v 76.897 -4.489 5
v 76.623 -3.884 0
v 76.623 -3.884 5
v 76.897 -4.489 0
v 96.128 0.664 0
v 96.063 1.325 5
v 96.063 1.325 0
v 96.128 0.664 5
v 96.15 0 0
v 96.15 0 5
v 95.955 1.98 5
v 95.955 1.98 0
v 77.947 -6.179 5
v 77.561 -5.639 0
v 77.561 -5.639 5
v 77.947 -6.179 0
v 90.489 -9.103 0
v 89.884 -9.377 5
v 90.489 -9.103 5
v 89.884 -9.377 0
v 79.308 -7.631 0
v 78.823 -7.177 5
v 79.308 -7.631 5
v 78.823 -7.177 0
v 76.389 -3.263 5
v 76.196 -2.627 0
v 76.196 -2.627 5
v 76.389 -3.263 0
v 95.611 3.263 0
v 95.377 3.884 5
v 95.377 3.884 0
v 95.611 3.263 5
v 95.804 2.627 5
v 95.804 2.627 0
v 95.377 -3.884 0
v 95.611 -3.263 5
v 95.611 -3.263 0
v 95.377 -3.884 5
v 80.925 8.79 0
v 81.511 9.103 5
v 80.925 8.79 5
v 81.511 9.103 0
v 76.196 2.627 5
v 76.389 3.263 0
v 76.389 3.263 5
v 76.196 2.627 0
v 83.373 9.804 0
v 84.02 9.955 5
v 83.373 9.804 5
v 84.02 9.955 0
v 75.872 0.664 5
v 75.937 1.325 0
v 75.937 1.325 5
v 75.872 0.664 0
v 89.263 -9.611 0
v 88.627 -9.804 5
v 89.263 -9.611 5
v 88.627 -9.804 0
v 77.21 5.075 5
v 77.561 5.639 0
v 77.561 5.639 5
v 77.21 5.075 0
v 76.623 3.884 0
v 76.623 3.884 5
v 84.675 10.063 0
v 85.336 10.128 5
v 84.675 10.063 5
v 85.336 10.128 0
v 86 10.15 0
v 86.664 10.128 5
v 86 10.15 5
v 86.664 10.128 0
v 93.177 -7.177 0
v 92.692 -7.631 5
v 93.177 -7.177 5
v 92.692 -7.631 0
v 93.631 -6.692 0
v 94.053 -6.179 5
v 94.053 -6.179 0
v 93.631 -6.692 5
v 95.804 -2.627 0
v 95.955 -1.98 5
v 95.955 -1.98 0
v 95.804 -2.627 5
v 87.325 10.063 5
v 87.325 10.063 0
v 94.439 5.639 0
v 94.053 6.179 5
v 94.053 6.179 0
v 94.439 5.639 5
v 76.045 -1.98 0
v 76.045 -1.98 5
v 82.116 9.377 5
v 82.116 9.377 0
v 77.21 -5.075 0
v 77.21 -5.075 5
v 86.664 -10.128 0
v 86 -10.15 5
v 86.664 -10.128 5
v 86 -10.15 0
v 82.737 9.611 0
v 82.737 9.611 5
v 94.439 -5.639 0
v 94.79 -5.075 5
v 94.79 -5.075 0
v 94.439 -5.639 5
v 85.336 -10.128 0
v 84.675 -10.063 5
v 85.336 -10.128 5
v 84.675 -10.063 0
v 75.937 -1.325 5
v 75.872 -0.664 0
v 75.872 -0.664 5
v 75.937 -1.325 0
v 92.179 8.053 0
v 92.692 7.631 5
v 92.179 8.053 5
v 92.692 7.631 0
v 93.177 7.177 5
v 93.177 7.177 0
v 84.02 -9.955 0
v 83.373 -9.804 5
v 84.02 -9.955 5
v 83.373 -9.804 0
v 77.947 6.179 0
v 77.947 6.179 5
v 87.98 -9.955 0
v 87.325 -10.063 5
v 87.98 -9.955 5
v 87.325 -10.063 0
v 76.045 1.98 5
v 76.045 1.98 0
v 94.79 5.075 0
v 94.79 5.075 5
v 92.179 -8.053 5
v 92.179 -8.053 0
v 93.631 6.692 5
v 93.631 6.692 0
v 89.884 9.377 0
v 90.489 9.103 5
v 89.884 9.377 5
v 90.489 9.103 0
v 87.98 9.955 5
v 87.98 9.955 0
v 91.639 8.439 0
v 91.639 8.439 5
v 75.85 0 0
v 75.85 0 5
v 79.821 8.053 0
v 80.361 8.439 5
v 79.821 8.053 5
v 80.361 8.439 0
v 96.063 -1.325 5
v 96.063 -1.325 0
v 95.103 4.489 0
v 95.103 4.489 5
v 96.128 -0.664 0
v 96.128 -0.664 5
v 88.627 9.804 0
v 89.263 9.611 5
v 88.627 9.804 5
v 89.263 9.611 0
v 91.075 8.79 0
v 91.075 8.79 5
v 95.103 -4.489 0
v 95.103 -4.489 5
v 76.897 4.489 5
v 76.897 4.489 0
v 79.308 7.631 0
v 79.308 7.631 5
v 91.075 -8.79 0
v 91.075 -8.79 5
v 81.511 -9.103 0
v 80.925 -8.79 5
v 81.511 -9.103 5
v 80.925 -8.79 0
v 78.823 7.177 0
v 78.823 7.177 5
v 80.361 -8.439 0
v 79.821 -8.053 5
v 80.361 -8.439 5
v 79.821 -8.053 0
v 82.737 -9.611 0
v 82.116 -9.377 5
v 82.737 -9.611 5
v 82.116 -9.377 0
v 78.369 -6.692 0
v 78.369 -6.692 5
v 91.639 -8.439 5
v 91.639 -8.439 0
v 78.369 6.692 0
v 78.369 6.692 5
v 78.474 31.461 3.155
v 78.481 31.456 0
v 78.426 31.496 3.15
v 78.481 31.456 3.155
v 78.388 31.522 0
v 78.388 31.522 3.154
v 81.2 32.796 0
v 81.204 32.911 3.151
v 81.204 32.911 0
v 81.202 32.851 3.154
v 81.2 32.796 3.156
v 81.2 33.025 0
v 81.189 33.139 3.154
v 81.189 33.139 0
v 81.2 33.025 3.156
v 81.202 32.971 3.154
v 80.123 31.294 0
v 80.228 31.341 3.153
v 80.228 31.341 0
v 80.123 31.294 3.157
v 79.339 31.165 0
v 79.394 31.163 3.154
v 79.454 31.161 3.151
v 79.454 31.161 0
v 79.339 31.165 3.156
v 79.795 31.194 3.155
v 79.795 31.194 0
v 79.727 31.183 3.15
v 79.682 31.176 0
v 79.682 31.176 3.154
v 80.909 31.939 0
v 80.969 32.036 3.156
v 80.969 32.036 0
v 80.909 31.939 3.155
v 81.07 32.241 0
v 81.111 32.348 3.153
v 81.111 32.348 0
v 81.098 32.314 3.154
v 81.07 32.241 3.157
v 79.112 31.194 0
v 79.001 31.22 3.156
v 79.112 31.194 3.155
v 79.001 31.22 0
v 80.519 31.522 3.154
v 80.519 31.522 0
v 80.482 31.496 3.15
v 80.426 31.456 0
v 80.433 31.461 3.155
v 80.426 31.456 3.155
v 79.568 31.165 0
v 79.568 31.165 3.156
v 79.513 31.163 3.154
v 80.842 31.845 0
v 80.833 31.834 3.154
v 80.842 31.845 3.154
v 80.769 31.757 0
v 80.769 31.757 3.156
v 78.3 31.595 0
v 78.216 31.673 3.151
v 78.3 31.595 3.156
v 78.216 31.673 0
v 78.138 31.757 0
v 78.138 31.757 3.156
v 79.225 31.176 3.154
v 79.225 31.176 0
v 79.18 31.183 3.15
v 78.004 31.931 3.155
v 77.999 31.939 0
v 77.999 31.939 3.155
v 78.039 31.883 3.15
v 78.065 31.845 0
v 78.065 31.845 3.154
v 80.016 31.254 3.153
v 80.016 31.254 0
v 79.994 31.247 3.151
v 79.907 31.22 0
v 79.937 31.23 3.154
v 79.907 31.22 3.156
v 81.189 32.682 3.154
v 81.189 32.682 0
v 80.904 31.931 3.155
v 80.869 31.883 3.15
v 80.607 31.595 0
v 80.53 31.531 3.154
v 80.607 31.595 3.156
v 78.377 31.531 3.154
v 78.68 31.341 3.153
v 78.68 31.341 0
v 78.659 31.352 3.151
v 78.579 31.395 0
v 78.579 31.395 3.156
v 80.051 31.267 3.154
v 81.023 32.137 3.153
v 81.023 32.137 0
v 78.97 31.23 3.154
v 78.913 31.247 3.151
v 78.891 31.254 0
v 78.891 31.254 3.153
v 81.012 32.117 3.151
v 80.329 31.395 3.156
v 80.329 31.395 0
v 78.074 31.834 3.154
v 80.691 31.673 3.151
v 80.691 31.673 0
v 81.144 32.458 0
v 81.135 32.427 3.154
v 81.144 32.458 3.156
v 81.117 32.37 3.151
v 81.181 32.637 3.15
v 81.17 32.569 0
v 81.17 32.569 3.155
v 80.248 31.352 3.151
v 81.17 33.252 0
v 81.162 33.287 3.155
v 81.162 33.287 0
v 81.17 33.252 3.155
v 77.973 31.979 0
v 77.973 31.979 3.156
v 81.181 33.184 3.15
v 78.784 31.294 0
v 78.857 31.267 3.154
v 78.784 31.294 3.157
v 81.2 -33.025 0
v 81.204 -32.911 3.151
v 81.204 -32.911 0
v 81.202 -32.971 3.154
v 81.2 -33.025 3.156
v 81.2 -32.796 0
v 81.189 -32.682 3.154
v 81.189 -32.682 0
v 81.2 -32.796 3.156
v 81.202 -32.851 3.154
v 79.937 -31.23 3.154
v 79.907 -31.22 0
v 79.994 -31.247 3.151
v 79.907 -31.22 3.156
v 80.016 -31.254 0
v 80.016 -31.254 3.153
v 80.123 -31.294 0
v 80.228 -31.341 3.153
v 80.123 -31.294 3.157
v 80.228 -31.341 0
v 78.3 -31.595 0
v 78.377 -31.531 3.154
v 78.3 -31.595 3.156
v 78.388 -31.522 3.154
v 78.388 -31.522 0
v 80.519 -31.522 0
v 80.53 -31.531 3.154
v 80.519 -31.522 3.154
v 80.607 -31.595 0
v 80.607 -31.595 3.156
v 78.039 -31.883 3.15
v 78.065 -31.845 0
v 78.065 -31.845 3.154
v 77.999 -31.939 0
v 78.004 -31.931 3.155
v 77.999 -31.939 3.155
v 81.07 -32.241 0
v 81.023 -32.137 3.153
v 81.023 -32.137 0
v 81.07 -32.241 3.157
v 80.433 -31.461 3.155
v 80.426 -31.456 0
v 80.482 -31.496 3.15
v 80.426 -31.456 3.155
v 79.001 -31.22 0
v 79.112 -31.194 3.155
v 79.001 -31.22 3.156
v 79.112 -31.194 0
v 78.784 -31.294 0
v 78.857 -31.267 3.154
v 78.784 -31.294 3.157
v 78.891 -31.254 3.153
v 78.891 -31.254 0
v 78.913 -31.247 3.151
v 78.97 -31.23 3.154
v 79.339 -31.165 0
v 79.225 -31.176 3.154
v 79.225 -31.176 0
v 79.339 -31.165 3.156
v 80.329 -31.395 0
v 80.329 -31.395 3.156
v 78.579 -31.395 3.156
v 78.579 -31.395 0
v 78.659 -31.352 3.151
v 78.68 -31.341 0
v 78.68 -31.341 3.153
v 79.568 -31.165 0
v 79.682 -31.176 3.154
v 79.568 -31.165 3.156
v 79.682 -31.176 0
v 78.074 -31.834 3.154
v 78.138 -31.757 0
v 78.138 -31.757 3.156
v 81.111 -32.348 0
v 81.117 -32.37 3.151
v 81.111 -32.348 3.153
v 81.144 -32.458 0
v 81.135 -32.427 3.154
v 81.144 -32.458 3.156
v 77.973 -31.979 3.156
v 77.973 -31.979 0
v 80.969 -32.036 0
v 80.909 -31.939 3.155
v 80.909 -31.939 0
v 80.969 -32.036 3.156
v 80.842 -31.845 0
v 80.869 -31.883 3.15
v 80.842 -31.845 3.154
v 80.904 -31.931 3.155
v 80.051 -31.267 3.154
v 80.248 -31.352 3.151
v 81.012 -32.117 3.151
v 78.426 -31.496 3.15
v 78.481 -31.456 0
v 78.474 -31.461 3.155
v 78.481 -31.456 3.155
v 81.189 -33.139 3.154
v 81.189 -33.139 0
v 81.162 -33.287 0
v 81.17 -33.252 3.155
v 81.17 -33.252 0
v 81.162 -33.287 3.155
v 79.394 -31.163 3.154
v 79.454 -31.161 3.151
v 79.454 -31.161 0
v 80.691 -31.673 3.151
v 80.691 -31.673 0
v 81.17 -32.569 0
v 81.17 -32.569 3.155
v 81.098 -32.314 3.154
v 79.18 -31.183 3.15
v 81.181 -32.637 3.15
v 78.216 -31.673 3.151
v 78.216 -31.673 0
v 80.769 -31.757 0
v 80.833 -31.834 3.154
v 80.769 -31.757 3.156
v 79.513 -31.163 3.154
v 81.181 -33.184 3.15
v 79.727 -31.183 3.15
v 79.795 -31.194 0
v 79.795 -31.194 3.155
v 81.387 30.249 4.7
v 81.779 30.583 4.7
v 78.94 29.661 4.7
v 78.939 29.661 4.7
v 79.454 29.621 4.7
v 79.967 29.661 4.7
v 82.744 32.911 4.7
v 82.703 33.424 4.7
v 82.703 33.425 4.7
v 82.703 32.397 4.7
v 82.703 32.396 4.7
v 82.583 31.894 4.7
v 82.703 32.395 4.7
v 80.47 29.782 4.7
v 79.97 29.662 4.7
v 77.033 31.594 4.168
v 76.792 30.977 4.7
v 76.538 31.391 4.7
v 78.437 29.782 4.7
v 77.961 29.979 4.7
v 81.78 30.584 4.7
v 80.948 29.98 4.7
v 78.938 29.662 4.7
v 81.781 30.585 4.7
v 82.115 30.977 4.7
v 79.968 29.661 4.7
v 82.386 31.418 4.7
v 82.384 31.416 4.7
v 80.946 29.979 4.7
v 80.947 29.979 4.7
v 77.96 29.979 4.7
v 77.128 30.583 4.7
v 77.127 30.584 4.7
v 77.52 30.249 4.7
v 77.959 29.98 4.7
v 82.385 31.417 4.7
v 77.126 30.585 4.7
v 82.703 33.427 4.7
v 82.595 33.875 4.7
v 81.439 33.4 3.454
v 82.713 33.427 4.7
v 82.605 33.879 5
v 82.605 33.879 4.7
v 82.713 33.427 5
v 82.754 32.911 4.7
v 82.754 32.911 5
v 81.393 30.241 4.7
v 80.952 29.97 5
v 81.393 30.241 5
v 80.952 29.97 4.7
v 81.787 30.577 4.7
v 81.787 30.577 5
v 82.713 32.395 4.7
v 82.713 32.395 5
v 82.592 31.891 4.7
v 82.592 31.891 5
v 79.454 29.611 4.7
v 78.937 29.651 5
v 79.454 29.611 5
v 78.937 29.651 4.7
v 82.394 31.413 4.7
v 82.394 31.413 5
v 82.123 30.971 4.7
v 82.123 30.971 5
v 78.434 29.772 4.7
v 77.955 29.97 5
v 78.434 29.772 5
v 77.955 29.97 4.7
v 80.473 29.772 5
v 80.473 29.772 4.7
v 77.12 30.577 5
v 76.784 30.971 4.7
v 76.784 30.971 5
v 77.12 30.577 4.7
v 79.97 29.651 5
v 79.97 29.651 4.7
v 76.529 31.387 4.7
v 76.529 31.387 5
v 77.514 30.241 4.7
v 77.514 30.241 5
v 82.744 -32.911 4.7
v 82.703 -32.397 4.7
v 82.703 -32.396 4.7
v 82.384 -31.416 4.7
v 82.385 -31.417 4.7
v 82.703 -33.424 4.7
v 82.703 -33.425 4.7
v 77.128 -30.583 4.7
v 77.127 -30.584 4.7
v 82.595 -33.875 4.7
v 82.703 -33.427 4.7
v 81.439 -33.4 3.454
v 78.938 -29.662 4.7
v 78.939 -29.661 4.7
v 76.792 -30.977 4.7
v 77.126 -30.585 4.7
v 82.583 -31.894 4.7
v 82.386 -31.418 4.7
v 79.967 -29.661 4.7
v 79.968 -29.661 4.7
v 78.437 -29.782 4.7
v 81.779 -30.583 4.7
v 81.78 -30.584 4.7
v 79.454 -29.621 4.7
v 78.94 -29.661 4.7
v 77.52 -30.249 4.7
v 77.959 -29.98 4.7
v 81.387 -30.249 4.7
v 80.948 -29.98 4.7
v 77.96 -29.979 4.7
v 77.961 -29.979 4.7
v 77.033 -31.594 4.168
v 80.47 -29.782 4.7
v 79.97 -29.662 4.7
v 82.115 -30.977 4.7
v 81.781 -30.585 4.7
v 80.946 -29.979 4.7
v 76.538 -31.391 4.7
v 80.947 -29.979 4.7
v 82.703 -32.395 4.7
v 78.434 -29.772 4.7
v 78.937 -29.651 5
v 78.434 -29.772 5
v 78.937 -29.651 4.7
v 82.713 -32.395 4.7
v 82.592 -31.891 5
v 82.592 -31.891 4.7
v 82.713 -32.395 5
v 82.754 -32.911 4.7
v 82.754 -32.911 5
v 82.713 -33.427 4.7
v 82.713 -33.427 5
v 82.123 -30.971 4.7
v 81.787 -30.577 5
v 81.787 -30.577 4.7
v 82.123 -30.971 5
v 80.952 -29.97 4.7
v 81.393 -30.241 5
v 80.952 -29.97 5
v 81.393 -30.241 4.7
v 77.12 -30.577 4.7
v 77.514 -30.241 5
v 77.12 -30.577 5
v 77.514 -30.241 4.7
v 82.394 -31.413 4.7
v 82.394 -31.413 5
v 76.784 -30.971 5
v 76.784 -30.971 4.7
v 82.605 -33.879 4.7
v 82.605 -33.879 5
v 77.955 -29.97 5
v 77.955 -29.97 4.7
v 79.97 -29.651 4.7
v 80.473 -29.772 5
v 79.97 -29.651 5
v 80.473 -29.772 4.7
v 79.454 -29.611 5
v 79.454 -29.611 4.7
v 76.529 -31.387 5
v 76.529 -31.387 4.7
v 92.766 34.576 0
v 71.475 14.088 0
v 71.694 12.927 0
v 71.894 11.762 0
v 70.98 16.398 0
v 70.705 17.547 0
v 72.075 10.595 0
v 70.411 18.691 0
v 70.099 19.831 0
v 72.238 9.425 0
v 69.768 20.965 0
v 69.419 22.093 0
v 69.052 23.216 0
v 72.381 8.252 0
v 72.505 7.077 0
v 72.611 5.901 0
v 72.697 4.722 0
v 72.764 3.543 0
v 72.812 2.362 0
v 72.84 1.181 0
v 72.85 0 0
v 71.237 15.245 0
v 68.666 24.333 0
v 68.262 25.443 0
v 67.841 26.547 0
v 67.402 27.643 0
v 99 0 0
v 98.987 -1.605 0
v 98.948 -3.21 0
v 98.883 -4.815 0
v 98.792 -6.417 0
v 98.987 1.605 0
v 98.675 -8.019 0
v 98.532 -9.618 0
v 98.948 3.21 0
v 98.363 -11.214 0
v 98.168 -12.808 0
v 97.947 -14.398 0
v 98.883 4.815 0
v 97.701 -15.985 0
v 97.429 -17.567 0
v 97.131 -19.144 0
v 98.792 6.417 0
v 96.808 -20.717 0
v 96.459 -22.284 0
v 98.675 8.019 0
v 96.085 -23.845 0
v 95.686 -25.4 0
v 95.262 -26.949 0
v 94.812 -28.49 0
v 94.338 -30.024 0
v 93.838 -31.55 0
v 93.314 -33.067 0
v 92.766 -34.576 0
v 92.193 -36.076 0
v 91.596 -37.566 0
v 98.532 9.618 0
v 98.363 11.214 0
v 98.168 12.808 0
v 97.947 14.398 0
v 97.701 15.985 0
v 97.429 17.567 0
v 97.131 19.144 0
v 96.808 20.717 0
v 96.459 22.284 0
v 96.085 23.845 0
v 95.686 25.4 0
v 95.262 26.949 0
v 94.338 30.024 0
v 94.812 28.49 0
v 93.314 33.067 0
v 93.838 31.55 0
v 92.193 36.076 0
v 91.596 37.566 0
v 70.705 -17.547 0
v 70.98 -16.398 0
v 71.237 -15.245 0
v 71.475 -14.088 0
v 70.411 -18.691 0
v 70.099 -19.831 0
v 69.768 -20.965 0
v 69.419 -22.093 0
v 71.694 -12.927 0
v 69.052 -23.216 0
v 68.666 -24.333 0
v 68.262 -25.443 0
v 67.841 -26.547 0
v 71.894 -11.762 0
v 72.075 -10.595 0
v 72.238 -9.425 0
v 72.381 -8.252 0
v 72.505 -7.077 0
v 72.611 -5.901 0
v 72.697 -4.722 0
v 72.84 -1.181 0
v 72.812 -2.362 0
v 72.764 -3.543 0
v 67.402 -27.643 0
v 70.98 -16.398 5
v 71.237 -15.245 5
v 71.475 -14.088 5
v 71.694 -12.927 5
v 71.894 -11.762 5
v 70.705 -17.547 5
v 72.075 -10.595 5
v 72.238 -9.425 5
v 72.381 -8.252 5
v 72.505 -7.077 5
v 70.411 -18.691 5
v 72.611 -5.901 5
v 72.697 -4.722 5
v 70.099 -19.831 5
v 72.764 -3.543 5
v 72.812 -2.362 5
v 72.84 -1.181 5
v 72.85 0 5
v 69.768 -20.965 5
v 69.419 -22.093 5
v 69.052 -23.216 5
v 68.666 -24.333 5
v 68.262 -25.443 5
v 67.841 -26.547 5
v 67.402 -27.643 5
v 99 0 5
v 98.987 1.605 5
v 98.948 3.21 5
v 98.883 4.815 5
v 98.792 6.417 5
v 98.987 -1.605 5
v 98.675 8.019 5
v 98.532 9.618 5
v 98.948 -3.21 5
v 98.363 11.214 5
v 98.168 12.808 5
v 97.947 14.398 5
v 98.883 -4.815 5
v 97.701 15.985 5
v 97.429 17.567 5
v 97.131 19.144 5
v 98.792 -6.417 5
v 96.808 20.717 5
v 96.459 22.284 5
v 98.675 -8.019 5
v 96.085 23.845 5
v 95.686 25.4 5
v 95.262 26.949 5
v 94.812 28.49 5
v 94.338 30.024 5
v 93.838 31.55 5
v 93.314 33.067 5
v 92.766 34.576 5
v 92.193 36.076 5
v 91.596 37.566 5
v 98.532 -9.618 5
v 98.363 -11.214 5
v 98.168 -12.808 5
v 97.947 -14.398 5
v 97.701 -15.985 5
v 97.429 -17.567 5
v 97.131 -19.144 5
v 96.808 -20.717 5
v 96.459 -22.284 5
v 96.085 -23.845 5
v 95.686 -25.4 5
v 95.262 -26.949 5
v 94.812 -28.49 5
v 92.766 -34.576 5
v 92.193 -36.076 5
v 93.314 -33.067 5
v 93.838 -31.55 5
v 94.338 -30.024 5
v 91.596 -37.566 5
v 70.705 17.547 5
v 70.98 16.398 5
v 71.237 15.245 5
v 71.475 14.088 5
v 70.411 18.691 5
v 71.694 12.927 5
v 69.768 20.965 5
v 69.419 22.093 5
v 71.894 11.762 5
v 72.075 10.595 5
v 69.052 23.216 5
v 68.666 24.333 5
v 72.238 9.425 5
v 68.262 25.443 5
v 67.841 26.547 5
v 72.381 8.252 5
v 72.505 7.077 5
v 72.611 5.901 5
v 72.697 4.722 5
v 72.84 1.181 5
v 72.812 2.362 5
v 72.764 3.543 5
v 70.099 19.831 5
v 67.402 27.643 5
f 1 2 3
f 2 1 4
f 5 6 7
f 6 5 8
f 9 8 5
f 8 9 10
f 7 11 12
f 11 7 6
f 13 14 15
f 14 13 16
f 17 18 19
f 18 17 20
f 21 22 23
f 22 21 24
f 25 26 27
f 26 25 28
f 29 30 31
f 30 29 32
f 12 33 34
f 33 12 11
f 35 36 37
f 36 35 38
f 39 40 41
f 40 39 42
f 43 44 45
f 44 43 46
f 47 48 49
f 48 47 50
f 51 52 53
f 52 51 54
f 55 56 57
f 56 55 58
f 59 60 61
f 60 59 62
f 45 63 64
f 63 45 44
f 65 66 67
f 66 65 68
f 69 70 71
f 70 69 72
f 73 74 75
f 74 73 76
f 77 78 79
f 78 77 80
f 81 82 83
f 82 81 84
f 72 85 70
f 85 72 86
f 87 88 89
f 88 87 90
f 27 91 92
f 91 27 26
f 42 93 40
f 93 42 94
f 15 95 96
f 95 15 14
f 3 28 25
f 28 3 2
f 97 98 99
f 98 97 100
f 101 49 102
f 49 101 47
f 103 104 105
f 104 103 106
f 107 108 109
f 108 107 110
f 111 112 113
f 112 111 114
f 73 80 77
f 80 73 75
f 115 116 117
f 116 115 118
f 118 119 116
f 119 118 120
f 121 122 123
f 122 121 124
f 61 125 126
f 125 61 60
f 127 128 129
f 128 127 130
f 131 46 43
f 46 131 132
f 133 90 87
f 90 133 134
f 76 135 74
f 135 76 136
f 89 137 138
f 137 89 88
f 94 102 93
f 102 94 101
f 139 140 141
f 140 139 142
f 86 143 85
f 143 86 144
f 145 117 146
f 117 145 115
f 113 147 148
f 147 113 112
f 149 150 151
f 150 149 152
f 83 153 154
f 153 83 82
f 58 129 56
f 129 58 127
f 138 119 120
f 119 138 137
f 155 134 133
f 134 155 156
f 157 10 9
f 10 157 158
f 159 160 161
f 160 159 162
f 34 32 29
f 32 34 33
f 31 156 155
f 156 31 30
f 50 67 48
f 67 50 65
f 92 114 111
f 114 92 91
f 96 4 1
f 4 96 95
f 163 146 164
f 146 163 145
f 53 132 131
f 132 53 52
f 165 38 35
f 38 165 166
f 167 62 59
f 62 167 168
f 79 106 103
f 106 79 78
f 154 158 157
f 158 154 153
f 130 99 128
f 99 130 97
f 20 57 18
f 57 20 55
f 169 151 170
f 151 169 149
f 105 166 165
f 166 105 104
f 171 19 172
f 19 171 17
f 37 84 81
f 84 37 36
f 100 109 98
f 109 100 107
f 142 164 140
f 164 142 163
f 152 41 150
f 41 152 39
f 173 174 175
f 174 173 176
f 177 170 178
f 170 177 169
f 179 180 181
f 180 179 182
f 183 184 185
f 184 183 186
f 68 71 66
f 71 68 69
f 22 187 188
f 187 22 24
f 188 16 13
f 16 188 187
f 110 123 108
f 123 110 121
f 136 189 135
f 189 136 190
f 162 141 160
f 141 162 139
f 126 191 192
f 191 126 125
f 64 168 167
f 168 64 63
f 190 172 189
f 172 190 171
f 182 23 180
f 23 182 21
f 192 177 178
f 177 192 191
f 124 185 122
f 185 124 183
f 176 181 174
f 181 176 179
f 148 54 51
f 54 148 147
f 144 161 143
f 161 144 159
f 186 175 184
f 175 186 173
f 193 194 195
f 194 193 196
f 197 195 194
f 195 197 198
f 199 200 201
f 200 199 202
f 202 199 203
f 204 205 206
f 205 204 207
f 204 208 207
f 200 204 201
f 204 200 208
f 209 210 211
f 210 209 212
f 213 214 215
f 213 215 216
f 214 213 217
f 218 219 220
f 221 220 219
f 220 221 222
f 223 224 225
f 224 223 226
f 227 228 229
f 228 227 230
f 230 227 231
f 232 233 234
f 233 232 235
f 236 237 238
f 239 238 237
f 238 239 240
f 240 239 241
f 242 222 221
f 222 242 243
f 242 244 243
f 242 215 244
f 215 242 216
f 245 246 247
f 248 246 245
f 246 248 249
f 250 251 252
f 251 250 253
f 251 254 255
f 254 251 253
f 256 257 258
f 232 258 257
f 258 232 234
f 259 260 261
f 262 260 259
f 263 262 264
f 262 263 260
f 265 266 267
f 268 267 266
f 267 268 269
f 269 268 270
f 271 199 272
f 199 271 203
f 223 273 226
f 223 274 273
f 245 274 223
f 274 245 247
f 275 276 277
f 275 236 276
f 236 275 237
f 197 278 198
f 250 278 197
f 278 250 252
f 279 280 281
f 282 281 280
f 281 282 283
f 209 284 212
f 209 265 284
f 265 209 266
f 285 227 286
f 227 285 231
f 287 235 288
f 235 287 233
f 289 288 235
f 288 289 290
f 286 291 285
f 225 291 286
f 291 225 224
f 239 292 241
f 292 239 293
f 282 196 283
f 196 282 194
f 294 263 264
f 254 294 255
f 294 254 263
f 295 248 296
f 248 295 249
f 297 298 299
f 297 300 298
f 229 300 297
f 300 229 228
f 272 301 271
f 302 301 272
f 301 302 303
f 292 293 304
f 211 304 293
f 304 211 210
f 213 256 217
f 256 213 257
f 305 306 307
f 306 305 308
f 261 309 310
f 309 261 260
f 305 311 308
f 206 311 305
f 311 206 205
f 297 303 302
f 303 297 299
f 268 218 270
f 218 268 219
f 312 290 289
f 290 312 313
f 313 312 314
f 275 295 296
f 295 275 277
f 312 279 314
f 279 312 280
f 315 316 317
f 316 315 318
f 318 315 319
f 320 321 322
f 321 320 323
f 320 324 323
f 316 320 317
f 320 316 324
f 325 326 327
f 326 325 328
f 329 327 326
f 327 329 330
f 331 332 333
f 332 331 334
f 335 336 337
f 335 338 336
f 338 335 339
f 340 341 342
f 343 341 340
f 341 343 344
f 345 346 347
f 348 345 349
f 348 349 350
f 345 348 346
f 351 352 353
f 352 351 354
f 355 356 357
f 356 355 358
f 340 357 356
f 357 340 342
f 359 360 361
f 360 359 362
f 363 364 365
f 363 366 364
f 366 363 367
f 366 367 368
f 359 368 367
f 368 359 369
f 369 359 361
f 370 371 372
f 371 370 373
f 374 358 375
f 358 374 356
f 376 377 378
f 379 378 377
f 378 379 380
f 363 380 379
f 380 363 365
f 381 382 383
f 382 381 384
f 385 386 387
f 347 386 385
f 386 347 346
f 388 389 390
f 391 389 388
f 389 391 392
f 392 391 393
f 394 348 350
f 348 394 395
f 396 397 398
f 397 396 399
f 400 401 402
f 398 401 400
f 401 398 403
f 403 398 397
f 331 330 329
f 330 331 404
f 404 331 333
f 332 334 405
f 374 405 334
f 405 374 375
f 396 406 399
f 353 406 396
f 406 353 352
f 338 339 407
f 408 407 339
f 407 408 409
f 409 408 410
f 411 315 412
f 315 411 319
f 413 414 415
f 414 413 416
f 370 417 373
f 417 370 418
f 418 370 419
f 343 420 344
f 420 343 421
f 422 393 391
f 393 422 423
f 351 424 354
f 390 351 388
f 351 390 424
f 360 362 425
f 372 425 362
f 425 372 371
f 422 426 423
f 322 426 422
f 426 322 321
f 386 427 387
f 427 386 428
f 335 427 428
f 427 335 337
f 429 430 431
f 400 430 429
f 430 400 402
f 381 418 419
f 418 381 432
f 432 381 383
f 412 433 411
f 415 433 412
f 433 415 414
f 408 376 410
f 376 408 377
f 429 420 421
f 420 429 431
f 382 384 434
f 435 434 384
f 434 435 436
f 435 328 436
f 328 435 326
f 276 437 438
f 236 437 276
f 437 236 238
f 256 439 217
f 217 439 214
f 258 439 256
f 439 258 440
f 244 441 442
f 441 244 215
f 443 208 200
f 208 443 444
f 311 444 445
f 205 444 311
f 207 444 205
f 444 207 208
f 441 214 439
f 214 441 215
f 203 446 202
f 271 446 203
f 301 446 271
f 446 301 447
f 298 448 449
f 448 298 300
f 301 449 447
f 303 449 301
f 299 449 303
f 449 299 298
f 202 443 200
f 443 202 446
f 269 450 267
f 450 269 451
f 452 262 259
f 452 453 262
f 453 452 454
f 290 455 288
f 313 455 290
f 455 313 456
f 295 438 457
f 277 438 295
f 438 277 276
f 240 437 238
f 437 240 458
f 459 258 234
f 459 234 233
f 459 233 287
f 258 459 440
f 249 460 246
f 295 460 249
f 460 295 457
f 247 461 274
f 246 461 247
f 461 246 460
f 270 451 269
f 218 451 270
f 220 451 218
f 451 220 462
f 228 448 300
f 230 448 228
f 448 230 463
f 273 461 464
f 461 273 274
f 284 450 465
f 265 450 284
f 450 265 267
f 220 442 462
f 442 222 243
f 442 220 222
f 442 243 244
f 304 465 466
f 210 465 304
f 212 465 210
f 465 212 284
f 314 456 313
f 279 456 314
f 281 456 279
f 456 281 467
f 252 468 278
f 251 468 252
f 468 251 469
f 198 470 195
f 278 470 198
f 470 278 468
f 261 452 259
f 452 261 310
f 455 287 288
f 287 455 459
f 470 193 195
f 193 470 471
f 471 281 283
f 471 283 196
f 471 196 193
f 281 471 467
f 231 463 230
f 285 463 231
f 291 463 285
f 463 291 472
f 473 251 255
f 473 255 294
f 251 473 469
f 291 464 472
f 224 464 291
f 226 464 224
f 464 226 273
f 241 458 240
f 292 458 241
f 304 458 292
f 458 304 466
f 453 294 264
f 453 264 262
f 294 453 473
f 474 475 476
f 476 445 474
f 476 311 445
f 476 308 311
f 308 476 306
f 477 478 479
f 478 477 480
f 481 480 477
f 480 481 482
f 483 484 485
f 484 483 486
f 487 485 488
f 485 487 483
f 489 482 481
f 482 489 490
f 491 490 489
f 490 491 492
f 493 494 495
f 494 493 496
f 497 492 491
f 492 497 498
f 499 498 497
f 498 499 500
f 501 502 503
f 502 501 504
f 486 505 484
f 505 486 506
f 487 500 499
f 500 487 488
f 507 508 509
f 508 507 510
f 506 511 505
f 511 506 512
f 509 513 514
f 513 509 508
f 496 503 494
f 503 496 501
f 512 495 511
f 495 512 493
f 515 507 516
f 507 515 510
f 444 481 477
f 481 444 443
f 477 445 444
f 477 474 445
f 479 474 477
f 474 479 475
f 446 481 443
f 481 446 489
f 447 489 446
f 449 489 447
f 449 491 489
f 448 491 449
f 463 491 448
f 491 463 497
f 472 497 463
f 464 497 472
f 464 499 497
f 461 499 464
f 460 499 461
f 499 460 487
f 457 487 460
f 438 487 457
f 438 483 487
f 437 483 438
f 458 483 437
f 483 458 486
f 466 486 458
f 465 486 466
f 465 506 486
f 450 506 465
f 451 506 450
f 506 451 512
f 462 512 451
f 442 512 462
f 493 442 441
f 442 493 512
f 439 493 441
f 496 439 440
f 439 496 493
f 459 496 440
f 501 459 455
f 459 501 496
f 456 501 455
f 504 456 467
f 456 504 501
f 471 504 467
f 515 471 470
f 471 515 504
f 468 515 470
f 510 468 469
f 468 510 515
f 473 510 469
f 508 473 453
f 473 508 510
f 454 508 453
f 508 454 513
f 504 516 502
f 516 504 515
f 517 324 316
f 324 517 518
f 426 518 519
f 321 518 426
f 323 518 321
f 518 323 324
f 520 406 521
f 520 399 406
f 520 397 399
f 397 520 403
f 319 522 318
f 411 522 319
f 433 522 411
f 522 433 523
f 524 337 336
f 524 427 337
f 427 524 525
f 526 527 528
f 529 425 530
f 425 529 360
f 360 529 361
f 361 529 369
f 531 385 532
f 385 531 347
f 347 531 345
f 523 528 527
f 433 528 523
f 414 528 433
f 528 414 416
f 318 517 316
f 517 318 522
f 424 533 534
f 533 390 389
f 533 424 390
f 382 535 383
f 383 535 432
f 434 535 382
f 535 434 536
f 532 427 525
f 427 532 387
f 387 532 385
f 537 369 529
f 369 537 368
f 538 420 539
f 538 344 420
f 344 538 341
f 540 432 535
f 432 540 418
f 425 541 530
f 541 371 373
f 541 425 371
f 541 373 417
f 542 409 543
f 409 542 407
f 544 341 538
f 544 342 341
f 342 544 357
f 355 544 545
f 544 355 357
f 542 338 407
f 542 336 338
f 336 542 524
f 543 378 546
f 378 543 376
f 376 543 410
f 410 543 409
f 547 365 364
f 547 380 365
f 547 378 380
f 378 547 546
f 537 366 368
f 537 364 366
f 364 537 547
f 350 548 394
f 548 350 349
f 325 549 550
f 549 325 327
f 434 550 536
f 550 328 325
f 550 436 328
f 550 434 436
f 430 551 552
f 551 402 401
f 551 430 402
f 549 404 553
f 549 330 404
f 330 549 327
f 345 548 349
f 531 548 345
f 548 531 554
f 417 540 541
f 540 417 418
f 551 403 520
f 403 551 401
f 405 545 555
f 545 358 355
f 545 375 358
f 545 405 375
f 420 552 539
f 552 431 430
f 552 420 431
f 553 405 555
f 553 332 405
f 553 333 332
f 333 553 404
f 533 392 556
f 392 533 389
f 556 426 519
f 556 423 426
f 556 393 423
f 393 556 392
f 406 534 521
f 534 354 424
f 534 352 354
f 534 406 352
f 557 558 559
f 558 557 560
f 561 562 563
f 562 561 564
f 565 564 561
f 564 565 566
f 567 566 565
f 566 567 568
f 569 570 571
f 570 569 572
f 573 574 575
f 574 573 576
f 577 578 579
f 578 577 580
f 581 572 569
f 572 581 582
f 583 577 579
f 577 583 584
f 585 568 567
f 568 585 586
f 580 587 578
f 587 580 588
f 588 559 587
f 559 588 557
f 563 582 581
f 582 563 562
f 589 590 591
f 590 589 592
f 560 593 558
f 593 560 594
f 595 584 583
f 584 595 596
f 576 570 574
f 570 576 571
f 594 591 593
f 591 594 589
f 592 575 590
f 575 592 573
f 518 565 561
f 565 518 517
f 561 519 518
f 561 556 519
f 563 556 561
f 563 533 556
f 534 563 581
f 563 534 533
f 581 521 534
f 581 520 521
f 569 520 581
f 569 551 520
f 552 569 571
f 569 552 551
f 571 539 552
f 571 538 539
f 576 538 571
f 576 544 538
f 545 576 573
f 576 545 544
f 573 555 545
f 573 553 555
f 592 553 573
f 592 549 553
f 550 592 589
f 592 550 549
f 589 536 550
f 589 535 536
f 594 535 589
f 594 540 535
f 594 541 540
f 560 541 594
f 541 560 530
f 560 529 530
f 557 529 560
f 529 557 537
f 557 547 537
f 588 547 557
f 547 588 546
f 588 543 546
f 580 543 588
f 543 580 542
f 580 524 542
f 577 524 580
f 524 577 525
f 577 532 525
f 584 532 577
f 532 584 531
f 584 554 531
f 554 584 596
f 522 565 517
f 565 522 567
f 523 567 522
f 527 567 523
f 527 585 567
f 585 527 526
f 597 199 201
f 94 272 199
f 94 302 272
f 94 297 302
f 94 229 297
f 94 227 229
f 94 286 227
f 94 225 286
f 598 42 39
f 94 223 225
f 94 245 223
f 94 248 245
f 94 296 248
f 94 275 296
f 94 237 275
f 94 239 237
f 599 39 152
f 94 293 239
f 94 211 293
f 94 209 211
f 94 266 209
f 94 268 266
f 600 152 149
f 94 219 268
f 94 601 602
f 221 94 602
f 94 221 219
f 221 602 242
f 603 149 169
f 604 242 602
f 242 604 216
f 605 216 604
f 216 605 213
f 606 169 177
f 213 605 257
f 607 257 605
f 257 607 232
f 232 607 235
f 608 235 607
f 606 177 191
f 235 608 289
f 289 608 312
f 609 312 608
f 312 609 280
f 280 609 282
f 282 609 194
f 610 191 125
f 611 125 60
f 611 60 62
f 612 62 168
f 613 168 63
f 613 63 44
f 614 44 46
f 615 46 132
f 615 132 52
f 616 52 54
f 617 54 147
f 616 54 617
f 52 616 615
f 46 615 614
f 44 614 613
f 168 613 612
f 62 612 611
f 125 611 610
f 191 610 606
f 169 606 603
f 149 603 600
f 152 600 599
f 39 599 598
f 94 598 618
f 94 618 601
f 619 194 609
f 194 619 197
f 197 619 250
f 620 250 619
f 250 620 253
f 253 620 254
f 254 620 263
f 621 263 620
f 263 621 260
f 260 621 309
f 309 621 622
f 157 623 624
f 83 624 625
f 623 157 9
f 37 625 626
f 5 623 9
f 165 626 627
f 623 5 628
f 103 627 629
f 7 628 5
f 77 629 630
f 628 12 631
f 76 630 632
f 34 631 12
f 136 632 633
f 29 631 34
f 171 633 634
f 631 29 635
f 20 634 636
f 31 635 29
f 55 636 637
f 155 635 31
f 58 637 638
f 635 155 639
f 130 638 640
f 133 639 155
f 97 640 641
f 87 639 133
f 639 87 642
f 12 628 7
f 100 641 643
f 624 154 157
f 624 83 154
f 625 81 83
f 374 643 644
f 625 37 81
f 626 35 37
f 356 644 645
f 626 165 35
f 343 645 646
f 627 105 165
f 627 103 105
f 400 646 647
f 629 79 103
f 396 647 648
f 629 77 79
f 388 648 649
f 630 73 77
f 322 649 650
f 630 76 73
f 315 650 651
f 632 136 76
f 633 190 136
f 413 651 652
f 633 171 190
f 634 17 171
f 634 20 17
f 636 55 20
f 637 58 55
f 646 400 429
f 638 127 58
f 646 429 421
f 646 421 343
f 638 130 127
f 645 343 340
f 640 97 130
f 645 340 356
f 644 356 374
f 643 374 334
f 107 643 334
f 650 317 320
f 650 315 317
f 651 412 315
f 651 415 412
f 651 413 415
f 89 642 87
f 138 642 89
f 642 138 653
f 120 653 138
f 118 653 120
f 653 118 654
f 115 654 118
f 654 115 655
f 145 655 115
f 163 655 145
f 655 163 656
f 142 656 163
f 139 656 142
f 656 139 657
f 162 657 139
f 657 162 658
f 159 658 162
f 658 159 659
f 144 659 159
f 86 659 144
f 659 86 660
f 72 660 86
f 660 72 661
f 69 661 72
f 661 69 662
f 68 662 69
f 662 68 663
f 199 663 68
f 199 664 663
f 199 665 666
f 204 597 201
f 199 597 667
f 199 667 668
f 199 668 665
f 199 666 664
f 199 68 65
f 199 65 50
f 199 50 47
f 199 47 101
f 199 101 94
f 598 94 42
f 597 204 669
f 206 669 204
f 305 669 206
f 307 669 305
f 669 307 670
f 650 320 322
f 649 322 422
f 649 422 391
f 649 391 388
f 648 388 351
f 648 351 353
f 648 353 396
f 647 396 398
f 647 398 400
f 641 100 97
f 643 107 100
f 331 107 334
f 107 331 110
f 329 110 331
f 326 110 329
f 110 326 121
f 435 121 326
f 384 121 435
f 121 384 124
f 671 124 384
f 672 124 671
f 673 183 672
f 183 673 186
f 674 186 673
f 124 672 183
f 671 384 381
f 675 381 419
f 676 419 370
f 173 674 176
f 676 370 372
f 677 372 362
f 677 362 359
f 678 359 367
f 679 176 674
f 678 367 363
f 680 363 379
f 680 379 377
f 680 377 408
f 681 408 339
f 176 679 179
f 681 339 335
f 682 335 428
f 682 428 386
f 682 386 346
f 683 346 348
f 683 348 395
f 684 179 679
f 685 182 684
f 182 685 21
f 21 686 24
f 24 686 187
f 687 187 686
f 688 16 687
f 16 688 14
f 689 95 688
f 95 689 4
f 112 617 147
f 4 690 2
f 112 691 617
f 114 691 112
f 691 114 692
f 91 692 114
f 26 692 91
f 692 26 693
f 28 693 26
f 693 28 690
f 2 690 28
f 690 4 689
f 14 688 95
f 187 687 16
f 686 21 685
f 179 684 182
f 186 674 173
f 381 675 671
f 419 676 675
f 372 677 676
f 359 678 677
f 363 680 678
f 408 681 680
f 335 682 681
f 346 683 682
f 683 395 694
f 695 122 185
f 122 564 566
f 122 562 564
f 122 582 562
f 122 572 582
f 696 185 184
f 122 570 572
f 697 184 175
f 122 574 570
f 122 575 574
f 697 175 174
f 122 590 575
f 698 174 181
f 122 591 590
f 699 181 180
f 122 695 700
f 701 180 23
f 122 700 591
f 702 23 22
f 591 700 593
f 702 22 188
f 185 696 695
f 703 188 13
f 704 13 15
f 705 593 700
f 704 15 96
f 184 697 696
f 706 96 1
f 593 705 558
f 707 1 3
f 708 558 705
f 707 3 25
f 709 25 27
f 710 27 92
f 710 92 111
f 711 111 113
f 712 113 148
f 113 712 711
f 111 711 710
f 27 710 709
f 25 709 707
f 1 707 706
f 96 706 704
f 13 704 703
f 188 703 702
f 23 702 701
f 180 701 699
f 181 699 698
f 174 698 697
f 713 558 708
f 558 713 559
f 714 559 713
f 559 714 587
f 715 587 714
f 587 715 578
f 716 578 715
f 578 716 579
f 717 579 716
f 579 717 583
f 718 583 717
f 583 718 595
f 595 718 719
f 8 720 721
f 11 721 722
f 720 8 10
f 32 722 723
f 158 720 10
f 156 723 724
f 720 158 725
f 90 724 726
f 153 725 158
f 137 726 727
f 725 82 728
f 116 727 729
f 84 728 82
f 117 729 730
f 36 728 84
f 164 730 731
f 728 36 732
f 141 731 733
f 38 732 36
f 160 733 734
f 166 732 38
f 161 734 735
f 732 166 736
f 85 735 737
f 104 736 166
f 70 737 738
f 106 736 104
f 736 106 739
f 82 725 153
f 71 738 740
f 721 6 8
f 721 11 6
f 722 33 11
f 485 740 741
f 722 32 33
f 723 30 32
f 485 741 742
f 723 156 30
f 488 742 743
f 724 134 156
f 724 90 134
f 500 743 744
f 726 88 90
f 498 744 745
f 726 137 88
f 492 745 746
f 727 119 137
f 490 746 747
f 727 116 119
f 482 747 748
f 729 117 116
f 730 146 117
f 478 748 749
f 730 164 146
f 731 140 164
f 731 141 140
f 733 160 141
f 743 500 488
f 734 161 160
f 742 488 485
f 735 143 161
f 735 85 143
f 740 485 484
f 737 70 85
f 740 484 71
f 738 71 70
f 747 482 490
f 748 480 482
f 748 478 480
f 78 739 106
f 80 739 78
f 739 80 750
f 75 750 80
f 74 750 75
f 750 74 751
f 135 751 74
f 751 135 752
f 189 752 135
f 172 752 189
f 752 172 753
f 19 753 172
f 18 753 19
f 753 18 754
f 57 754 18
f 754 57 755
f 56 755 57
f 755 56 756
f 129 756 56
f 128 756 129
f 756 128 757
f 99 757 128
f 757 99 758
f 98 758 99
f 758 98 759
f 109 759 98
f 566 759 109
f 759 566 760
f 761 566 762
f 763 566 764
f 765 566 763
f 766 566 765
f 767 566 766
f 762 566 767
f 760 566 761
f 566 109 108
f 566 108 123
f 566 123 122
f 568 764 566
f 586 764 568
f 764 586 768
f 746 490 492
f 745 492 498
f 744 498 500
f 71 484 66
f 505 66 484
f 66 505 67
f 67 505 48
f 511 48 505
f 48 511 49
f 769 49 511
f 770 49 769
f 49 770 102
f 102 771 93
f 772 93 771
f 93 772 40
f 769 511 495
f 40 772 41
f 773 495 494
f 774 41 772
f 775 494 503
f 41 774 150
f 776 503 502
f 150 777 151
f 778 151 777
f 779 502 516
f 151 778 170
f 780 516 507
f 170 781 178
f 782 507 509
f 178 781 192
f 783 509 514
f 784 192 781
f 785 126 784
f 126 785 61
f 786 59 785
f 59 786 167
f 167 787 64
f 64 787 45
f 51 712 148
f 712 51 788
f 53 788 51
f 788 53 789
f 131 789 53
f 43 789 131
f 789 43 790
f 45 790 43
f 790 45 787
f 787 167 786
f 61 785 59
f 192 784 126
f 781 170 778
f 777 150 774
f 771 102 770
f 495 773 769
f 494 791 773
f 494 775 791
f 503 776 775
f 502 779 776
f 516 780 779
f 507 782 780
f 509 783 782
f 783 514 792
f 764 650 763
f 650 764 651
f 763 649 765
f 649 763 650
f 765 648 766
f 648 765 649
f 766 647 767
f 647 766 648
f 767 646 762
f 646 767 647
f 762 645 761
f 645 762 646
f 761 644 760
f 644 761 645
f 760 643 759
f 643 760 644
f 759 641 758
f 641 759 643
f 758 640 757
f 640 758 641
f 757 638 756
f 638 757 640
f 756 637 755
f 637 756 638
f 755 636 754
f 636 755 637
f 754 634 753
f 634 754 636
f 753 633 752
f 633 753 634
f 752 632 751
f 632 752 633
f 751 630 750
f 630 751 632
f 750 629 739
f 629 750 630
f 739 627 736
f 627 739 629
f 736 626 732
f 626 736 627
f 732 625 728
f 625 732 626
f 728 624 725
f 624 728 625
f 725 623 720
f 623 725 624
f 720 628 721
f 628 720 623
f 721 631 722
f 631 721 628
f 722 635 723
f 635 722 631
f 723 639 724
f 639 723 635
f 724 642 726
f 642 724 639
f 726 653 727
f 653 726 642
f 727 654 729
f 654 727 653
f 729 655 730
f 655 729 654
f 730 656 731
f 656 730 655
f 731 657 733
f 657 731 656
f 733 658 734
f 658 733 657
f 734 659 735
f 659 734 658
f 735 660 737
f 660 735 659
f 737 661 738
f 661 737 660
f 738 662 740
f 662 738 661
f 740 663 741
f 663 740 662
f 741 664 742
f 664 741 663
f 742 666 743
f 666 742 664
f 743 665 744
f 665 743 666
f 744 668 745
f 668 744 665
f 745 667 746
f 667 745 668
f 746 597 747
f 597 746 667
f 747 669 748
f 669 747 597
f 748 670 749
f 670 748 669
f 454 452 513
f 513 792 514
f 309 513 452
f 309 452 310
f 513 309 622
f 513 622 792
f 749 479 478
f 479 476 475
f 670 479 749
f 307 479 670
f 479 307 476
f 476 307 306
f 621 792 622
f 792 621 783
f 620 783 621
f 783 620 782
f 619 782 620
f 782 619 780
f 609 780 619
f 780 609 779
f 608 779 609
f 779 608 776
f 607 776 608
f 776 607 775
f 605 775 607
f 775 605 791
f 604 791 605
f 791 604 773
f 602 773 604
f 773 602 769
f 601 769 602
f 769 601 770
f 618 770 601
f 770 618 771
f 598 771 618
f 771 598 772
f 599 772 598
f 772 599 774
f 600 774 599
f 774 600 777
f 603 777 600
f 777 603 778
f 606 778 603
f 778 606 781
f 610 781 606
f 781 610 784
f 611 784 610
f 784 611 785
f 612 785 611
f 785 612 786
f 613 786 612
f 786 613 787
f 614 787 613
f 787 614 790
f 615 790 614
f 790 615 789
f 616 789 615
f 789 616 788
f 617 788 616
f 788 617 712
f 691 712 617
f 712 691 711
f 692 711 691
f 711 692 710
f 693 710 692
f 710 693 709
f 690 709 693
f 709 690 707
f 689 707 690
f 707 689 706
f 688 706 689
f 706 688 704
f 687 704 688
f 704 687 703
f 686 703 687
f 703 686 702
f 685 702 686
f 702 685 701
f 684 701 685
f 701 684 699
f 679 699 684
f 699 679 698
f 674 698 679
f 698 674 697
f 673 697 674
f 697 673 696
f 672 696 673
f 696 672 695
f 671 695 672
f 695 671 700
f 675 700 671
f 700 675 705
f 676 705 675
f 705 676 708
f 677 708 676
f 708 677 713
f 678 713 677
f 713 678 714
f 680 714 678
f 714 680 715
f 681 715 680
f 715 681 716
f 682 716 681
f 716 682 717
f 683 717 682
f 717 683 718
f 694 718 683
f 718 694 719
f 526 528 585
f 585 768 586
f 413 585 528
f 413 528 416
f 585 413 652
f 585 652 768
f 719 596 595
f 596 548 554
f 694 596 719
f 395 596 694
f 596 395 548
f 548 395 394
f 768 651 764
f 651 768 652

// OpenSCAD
// file: parameters.scad
// =============================================================================
// Gen-CD — nightly 2026-10-14 (physics_scorer, honest magpylib watts)
// Push past Gen-CA on the same arc-nested one-plate architecture: poles out to R86, bobbins r65–105 × 4.95 mm copper. Full-resolution scorer picks this window at ≈8.56 W (386 m, at the wire budget) with a Ø229 stator that still packs; thinner-copper R86 tips (r65–107 × 4.65) need Ø232+ and would not pack. Same 8 bolt-on arcs/rotor + D-flat hub + open-centre stator + in-place bobbin bases that unlocked Gen-CA.
// Clocking 0 deg (magnets N facing S) + D-flat keyed bore + index notch + flip-symmetric hole map.
// Windable 2-piece bobbin; turns = physics_scorer turns_fit; copper only between flanges.
// Steel back-iron: 2× Ø198 × 4.76 mm (3/16") mild-steel discs (steel_backiron_disc.dxf); magnets sit ON the steel
// (through-pockets) -> score with --back-iron. Night 2026-10-14.
// =============================================================================
topology            = "dual_rotor";

// --- Wire / winding (physics_scorer winding-fit) -------------------------------
wire_awg            = 26;
wire_od             = 0.45;     // insulated OD mm (bare 0.405)
fill_realistic      = 0.65;     // insulated-wire area / window (DENSE layered wind with a jig; scorer cap 0.65)
turns               = 370;       // = physics_scorer turns_fit (do NOT raise)
coil_former_type    = "bobbin";
coil_core_inset     = 18.31;     // radial copper build: hub = copper boundary inset by this
wind_build_axial    = 0.0;      // nothing proud of the flanges
wind_build_radial   = 0.0;

// --- Bobbin (base + lid) ---------------------------------------------------------
coil_id_r           = 65.00;    // copper boundary sector
coil_od_r           = 105.00;
span_deg            = 26.91;    // = pitch - 2*asin((wall+0.85)/coil_id_r) -> >=1.2 mm stator web
former_web          = 4.95;     // copper height between flanges (TALL copper: steel keeps Bz up)
flange_t            = 0.80;     // >= 0.8 mm FDM wall rule (tall winds push on the flanges)
wall                = 0.80;     // flange lip beyond copper
former_bare_h       = former_web + 2 * flange_t;
coil_envelope_h     = former_bare_h + 2 * wind_build_axial;
tab_w               = 7.0;
tab_len             = 7.0;
tab_h               = former_bare_h / 2;
pin_d               = 1.9;      // 1.75 mm filament locating pin
coil_mount_r        = coil_od_r + 0.2 + 4.0;
lead_y              = 1.6;
lead_slot_w         = 0.9;
lead_groove_d       = 0.6;

// --- Gap -------------------------------------------------------------------------
run_clear           = 0.50;     // rotor face -> flange
gap_spacer_h        = run_clear + wind_build_axial;
m2m                 = coil_envelope_h + 2 * run_clear;   // rotor face to rotor face (= gap_sleeve length)

// --- Stator ----------------------------------------------------------------------
coil_stations       = 12;
bay_clear           = 0.35;     // 0.35 mm: bobbin BASES print IN PLACE inside the stator bays (print-in-place gap), then pop out
stator_thick        = former_bare_h;                        // bobbins flush both faces
stator_od           = 229.0;
shaft_clear_stator  = 14.0;     // stator is static; gap sleeve OD 12 spins inside
stator_ir           = 59.85;    // ANNULAR stator: open centre (nested one-plate pack); inner rim 4.0 mm

// --- Rotor(s) --------------------------------------------------------------------
magnet_Br           = 1.43;     // N52
magnet_d_large      = 20.0;
magnet_h_large      = 5.0;      // one O20x5 per pocket
magnet_h_small      = 5.0;      // unused: no O5 pockets in this kit
halbach_magnetisation = "none";  // NO O5 assist magnets in this kit (scan: they lower the 4-pole score)
rotor_b_same_axis   = true;     // same-index magnets share one axis: N faces S across the gap
large_pocket_d      = 20.3;
small_pocket_d      = 5.3;
pocket_h            = 5.00;     // THROUGH the carrier: magnet back face sits on the steel disc (FLUSH seat: carrier = magnet height, magnet face level with the rotor face)
large_n             = 8;
R_large             = 86.0;
small_r_list        = [];       // no O5 pockets
carrier_od          = 198.0;
ring_ir             = 72.85;    // RING rotor: PLA magnet ring r ring_ir..carrier_od/2 (steel disc = structural rotor)
hub_flange_od       = 74.0;     // separate rotor_hub flange (inside the ring, flush with the ring face)
csk_d               = 6.6;      // M3 countersunk head pocket (ISO 10642 head 6.0 nominal) on the stator face
csk_depth           = 1.55;     // = (csk_d - m3_clear) / 2: 90 deg cone; head sits 0.3 mm below the face
n_seg               = 8;        // magnet-carrier ARCS per rotor (segmented carrier)
seg_deg             = 360 / n_seg;
seg_start           = -22.5;   // arc edge angle (between pocket 0 and its clamp bolt)
seg_kerf_deg        = 0.4;      // gap between neighbouring arcs on the steel
carrier_thick       = pocket_h;
hub_h               = 12.0;     // > steel_t + insert: radial set-screw clears the steel
hub_od              = 24.0;     // slim hub so the M4 brace rods fit at R~18 inside the coil ring
hub_insert_d        = 4.0;      // M3 heat-set insert, radial, bears on the D-flat
rotor_b_offset_deg  = 0.0;      // CLOCKING: magnets directly opposite
shaft_key           = "dflat";
dflat_depth         = 0.5;      // 8 mm shaft with 0.5 mm flat (7.5 across flat)
index_notch_d       = 3.0;

// --- Steel back-iron (buyable laser-cut) -------------------------------------------
steel_t             = 4.76;      // mild steel thickness (image method ignores it; sized from steel_flux.py so the return path stays well below saturation)
steel_center_hole   = 26.0;     // slips over the rotor hub (OD 24)
steel_od            = carrier_od;   // steel disc OD = rotor carrier OD

// --- Modular MAX interface ----------------------------------------------------------
shaft_bore          = 8.35;
dflat_x             = 4.0 - dflat_depth + (shaft_bore - 8.0) / 2;
bearing_d           = 21.85;
bearing_h           = 7.2;
m3_clear            = 3.5;
bolt_r_inner        = 30.0;     // M3 steel-disc clamp bolts (inside the magnet ring)
bolt_n_inner        = 4;
bolt_inner_angles   = [0, 90, 180, 270];
bolt_r_outer        = 86.0;     // second M3 steel-disc clamp ring
bolt_outer_angles   = [22.5, 67.5, 112.5, 157.5, 202.5, 247.5, 292.5, 337.5];
flange_bolt_r       = 109.5;     // frame rods: OUTSIDE the rotor OD (rotors spin inside them)
flange_bolt_n       = 4;
flange_bolt_offset  = 45.00;    // between coil stations -> never cuts a lead groove/tab
brace_r             = 18.0;
brace_d             = 4.3;      // temporary M4 jack rods (assembly only)
brace_n             = 4;
brace_angles        = [45, 135, 225, 315];          // flip-symmetric

spacer_pad_od       = 14.0;
spacer_pad_id       = m3_clear;
endbell_od          = 229.0;
endbell_thick       = 8.0;
endbell_shaft_clear = 10.0;
collar_h            = 10.0;
standoff_od         = 9.0;
frame_standoff_h    = run_clear + carrier_thick + hub_h + collar_h + 2.0;
sleeve_od           = 12.0;
plate_max_mm        = 410;

$fn = 64;
// main file
// Gen-CD — rotor B MAGNET-CARRIER ARC (2026-10-14 segmented nested pack). Print x8 per rotor (16 total
// for A+B; A and B arcs are the same print). Each arc covers seg_deg = 360/n_seg of the R_large ring and holds 1 O20 through-pockets
// + 1 countersunk M3 clamp holes (inter-pole, R bolt_r_outer) to the steel disc. The 4.76 mm mild-steel disc is the structural
// rotor; the separate rotor_hub (D-flat) bolts to it at R bolt_r_inner. Arcs pack around/inside the other parts on ONE plate,
// and any arc can be swapped/re-printed on its own (modular magnet carrier).
// CLOCKING: arc j spans [j*seg_deg + seg_start, (j+1)*seg_deg + seg_start - kerf]; pockets at i*360/large_n + rotor_b_offset_deg (= 0).
// The arc's bolt holes sit on the same 8-fold map as the pockets, so every arc position puts pockets on the same steel angles;
// pocket 0 = the pocket over the STEEL index notch (clocked to the hub D-flat). Rotor B arcs = same print, flipped to face A.
// Print countersinks UP (stator face up); the arc lies flat (5 mm), no supports.
include <parameters.scad>;
$fn = 96;
module ring_holes_2d() {
    for (a = bolt_outer_angles) translate([bolt_r_outer*cos(a), bolt_r_outer*sin(a)]) circle(d=m3_clear);
    translate([carrier_od/2, 0]) circle(d=index_notch_d, $fn=24);
}
module hub_holes_2d() {
    for (a = bolt_inner_angles) translate([bolt_r_inner*cos(a), bolt_r_inner*sin(a)]) circle(d=m3_clear);
    for (a = brace_angles) translate([brace_r*cos(a), brace_r*sin(a)]) circle(d=brace_d);
    translate([hub_flange_od/2, 0]) circle(d=index_notch_d, $fn=24);
}
module csk(r, angles) {   // M3 countersunk (ISO 10642, 90 deg) head pocket on the STATOR face, head 0.3 mm below the face
    for (a = angles) translate([r*cos(a), r*sin(a), 0]) {
        translate([0, 0, carrier_thick - 0.3 - csk_depth - 0.2]) cylinder(d1=m3_clear - 0.4, d2=csk_d, h=csk_depth + 0.2 + 0.01, $fn=40);
        translate([0, 0, carrier_thick - 0.3]) cylinder(d=csk_d, h=0.4, $fn=40);
    }
}

off = rotor_b_offset_deg;
module arc_2d() {
    a0 = seg_start + seg_kerf_deg / 2; a1 = seg_start + seg_deg - seg_kerf_deg / 2;
    polygon(concat(
        [for (k = [0 : 48]) let(t = a0 + (a1 - a0) * k / 48) [(carrier_od/2) * cos(t), (carrier_od/2) * sin(t)]],
        [for (k = [48 : -1 : 0]) let(t = a0 + (a1 - a0) * k / 48) [ring_ir * cos(t), ring_ir * sin(t)]]));
}
difference() {
    linear_extrude(carrier_thick) arc_2d();
    for (i = [0 : large_n-1]) {
        a = i * 360 / large_n + off;
        translate([R_large*cos(a), R_large*sin(a), -0.1]) cylinder(d=large_pocket_d, h=carrier_thick + 0.2);
    }
    for (a = bolt_outer_angles) translate([bolt_r_outer*cos(a), bolt_r_outer*sin(a), -0.1]) cylinder(d=m3_clear, h=carrier_thick + 0.2);
    csk(bolt_r_outer, bolt_outer_angles);
}
